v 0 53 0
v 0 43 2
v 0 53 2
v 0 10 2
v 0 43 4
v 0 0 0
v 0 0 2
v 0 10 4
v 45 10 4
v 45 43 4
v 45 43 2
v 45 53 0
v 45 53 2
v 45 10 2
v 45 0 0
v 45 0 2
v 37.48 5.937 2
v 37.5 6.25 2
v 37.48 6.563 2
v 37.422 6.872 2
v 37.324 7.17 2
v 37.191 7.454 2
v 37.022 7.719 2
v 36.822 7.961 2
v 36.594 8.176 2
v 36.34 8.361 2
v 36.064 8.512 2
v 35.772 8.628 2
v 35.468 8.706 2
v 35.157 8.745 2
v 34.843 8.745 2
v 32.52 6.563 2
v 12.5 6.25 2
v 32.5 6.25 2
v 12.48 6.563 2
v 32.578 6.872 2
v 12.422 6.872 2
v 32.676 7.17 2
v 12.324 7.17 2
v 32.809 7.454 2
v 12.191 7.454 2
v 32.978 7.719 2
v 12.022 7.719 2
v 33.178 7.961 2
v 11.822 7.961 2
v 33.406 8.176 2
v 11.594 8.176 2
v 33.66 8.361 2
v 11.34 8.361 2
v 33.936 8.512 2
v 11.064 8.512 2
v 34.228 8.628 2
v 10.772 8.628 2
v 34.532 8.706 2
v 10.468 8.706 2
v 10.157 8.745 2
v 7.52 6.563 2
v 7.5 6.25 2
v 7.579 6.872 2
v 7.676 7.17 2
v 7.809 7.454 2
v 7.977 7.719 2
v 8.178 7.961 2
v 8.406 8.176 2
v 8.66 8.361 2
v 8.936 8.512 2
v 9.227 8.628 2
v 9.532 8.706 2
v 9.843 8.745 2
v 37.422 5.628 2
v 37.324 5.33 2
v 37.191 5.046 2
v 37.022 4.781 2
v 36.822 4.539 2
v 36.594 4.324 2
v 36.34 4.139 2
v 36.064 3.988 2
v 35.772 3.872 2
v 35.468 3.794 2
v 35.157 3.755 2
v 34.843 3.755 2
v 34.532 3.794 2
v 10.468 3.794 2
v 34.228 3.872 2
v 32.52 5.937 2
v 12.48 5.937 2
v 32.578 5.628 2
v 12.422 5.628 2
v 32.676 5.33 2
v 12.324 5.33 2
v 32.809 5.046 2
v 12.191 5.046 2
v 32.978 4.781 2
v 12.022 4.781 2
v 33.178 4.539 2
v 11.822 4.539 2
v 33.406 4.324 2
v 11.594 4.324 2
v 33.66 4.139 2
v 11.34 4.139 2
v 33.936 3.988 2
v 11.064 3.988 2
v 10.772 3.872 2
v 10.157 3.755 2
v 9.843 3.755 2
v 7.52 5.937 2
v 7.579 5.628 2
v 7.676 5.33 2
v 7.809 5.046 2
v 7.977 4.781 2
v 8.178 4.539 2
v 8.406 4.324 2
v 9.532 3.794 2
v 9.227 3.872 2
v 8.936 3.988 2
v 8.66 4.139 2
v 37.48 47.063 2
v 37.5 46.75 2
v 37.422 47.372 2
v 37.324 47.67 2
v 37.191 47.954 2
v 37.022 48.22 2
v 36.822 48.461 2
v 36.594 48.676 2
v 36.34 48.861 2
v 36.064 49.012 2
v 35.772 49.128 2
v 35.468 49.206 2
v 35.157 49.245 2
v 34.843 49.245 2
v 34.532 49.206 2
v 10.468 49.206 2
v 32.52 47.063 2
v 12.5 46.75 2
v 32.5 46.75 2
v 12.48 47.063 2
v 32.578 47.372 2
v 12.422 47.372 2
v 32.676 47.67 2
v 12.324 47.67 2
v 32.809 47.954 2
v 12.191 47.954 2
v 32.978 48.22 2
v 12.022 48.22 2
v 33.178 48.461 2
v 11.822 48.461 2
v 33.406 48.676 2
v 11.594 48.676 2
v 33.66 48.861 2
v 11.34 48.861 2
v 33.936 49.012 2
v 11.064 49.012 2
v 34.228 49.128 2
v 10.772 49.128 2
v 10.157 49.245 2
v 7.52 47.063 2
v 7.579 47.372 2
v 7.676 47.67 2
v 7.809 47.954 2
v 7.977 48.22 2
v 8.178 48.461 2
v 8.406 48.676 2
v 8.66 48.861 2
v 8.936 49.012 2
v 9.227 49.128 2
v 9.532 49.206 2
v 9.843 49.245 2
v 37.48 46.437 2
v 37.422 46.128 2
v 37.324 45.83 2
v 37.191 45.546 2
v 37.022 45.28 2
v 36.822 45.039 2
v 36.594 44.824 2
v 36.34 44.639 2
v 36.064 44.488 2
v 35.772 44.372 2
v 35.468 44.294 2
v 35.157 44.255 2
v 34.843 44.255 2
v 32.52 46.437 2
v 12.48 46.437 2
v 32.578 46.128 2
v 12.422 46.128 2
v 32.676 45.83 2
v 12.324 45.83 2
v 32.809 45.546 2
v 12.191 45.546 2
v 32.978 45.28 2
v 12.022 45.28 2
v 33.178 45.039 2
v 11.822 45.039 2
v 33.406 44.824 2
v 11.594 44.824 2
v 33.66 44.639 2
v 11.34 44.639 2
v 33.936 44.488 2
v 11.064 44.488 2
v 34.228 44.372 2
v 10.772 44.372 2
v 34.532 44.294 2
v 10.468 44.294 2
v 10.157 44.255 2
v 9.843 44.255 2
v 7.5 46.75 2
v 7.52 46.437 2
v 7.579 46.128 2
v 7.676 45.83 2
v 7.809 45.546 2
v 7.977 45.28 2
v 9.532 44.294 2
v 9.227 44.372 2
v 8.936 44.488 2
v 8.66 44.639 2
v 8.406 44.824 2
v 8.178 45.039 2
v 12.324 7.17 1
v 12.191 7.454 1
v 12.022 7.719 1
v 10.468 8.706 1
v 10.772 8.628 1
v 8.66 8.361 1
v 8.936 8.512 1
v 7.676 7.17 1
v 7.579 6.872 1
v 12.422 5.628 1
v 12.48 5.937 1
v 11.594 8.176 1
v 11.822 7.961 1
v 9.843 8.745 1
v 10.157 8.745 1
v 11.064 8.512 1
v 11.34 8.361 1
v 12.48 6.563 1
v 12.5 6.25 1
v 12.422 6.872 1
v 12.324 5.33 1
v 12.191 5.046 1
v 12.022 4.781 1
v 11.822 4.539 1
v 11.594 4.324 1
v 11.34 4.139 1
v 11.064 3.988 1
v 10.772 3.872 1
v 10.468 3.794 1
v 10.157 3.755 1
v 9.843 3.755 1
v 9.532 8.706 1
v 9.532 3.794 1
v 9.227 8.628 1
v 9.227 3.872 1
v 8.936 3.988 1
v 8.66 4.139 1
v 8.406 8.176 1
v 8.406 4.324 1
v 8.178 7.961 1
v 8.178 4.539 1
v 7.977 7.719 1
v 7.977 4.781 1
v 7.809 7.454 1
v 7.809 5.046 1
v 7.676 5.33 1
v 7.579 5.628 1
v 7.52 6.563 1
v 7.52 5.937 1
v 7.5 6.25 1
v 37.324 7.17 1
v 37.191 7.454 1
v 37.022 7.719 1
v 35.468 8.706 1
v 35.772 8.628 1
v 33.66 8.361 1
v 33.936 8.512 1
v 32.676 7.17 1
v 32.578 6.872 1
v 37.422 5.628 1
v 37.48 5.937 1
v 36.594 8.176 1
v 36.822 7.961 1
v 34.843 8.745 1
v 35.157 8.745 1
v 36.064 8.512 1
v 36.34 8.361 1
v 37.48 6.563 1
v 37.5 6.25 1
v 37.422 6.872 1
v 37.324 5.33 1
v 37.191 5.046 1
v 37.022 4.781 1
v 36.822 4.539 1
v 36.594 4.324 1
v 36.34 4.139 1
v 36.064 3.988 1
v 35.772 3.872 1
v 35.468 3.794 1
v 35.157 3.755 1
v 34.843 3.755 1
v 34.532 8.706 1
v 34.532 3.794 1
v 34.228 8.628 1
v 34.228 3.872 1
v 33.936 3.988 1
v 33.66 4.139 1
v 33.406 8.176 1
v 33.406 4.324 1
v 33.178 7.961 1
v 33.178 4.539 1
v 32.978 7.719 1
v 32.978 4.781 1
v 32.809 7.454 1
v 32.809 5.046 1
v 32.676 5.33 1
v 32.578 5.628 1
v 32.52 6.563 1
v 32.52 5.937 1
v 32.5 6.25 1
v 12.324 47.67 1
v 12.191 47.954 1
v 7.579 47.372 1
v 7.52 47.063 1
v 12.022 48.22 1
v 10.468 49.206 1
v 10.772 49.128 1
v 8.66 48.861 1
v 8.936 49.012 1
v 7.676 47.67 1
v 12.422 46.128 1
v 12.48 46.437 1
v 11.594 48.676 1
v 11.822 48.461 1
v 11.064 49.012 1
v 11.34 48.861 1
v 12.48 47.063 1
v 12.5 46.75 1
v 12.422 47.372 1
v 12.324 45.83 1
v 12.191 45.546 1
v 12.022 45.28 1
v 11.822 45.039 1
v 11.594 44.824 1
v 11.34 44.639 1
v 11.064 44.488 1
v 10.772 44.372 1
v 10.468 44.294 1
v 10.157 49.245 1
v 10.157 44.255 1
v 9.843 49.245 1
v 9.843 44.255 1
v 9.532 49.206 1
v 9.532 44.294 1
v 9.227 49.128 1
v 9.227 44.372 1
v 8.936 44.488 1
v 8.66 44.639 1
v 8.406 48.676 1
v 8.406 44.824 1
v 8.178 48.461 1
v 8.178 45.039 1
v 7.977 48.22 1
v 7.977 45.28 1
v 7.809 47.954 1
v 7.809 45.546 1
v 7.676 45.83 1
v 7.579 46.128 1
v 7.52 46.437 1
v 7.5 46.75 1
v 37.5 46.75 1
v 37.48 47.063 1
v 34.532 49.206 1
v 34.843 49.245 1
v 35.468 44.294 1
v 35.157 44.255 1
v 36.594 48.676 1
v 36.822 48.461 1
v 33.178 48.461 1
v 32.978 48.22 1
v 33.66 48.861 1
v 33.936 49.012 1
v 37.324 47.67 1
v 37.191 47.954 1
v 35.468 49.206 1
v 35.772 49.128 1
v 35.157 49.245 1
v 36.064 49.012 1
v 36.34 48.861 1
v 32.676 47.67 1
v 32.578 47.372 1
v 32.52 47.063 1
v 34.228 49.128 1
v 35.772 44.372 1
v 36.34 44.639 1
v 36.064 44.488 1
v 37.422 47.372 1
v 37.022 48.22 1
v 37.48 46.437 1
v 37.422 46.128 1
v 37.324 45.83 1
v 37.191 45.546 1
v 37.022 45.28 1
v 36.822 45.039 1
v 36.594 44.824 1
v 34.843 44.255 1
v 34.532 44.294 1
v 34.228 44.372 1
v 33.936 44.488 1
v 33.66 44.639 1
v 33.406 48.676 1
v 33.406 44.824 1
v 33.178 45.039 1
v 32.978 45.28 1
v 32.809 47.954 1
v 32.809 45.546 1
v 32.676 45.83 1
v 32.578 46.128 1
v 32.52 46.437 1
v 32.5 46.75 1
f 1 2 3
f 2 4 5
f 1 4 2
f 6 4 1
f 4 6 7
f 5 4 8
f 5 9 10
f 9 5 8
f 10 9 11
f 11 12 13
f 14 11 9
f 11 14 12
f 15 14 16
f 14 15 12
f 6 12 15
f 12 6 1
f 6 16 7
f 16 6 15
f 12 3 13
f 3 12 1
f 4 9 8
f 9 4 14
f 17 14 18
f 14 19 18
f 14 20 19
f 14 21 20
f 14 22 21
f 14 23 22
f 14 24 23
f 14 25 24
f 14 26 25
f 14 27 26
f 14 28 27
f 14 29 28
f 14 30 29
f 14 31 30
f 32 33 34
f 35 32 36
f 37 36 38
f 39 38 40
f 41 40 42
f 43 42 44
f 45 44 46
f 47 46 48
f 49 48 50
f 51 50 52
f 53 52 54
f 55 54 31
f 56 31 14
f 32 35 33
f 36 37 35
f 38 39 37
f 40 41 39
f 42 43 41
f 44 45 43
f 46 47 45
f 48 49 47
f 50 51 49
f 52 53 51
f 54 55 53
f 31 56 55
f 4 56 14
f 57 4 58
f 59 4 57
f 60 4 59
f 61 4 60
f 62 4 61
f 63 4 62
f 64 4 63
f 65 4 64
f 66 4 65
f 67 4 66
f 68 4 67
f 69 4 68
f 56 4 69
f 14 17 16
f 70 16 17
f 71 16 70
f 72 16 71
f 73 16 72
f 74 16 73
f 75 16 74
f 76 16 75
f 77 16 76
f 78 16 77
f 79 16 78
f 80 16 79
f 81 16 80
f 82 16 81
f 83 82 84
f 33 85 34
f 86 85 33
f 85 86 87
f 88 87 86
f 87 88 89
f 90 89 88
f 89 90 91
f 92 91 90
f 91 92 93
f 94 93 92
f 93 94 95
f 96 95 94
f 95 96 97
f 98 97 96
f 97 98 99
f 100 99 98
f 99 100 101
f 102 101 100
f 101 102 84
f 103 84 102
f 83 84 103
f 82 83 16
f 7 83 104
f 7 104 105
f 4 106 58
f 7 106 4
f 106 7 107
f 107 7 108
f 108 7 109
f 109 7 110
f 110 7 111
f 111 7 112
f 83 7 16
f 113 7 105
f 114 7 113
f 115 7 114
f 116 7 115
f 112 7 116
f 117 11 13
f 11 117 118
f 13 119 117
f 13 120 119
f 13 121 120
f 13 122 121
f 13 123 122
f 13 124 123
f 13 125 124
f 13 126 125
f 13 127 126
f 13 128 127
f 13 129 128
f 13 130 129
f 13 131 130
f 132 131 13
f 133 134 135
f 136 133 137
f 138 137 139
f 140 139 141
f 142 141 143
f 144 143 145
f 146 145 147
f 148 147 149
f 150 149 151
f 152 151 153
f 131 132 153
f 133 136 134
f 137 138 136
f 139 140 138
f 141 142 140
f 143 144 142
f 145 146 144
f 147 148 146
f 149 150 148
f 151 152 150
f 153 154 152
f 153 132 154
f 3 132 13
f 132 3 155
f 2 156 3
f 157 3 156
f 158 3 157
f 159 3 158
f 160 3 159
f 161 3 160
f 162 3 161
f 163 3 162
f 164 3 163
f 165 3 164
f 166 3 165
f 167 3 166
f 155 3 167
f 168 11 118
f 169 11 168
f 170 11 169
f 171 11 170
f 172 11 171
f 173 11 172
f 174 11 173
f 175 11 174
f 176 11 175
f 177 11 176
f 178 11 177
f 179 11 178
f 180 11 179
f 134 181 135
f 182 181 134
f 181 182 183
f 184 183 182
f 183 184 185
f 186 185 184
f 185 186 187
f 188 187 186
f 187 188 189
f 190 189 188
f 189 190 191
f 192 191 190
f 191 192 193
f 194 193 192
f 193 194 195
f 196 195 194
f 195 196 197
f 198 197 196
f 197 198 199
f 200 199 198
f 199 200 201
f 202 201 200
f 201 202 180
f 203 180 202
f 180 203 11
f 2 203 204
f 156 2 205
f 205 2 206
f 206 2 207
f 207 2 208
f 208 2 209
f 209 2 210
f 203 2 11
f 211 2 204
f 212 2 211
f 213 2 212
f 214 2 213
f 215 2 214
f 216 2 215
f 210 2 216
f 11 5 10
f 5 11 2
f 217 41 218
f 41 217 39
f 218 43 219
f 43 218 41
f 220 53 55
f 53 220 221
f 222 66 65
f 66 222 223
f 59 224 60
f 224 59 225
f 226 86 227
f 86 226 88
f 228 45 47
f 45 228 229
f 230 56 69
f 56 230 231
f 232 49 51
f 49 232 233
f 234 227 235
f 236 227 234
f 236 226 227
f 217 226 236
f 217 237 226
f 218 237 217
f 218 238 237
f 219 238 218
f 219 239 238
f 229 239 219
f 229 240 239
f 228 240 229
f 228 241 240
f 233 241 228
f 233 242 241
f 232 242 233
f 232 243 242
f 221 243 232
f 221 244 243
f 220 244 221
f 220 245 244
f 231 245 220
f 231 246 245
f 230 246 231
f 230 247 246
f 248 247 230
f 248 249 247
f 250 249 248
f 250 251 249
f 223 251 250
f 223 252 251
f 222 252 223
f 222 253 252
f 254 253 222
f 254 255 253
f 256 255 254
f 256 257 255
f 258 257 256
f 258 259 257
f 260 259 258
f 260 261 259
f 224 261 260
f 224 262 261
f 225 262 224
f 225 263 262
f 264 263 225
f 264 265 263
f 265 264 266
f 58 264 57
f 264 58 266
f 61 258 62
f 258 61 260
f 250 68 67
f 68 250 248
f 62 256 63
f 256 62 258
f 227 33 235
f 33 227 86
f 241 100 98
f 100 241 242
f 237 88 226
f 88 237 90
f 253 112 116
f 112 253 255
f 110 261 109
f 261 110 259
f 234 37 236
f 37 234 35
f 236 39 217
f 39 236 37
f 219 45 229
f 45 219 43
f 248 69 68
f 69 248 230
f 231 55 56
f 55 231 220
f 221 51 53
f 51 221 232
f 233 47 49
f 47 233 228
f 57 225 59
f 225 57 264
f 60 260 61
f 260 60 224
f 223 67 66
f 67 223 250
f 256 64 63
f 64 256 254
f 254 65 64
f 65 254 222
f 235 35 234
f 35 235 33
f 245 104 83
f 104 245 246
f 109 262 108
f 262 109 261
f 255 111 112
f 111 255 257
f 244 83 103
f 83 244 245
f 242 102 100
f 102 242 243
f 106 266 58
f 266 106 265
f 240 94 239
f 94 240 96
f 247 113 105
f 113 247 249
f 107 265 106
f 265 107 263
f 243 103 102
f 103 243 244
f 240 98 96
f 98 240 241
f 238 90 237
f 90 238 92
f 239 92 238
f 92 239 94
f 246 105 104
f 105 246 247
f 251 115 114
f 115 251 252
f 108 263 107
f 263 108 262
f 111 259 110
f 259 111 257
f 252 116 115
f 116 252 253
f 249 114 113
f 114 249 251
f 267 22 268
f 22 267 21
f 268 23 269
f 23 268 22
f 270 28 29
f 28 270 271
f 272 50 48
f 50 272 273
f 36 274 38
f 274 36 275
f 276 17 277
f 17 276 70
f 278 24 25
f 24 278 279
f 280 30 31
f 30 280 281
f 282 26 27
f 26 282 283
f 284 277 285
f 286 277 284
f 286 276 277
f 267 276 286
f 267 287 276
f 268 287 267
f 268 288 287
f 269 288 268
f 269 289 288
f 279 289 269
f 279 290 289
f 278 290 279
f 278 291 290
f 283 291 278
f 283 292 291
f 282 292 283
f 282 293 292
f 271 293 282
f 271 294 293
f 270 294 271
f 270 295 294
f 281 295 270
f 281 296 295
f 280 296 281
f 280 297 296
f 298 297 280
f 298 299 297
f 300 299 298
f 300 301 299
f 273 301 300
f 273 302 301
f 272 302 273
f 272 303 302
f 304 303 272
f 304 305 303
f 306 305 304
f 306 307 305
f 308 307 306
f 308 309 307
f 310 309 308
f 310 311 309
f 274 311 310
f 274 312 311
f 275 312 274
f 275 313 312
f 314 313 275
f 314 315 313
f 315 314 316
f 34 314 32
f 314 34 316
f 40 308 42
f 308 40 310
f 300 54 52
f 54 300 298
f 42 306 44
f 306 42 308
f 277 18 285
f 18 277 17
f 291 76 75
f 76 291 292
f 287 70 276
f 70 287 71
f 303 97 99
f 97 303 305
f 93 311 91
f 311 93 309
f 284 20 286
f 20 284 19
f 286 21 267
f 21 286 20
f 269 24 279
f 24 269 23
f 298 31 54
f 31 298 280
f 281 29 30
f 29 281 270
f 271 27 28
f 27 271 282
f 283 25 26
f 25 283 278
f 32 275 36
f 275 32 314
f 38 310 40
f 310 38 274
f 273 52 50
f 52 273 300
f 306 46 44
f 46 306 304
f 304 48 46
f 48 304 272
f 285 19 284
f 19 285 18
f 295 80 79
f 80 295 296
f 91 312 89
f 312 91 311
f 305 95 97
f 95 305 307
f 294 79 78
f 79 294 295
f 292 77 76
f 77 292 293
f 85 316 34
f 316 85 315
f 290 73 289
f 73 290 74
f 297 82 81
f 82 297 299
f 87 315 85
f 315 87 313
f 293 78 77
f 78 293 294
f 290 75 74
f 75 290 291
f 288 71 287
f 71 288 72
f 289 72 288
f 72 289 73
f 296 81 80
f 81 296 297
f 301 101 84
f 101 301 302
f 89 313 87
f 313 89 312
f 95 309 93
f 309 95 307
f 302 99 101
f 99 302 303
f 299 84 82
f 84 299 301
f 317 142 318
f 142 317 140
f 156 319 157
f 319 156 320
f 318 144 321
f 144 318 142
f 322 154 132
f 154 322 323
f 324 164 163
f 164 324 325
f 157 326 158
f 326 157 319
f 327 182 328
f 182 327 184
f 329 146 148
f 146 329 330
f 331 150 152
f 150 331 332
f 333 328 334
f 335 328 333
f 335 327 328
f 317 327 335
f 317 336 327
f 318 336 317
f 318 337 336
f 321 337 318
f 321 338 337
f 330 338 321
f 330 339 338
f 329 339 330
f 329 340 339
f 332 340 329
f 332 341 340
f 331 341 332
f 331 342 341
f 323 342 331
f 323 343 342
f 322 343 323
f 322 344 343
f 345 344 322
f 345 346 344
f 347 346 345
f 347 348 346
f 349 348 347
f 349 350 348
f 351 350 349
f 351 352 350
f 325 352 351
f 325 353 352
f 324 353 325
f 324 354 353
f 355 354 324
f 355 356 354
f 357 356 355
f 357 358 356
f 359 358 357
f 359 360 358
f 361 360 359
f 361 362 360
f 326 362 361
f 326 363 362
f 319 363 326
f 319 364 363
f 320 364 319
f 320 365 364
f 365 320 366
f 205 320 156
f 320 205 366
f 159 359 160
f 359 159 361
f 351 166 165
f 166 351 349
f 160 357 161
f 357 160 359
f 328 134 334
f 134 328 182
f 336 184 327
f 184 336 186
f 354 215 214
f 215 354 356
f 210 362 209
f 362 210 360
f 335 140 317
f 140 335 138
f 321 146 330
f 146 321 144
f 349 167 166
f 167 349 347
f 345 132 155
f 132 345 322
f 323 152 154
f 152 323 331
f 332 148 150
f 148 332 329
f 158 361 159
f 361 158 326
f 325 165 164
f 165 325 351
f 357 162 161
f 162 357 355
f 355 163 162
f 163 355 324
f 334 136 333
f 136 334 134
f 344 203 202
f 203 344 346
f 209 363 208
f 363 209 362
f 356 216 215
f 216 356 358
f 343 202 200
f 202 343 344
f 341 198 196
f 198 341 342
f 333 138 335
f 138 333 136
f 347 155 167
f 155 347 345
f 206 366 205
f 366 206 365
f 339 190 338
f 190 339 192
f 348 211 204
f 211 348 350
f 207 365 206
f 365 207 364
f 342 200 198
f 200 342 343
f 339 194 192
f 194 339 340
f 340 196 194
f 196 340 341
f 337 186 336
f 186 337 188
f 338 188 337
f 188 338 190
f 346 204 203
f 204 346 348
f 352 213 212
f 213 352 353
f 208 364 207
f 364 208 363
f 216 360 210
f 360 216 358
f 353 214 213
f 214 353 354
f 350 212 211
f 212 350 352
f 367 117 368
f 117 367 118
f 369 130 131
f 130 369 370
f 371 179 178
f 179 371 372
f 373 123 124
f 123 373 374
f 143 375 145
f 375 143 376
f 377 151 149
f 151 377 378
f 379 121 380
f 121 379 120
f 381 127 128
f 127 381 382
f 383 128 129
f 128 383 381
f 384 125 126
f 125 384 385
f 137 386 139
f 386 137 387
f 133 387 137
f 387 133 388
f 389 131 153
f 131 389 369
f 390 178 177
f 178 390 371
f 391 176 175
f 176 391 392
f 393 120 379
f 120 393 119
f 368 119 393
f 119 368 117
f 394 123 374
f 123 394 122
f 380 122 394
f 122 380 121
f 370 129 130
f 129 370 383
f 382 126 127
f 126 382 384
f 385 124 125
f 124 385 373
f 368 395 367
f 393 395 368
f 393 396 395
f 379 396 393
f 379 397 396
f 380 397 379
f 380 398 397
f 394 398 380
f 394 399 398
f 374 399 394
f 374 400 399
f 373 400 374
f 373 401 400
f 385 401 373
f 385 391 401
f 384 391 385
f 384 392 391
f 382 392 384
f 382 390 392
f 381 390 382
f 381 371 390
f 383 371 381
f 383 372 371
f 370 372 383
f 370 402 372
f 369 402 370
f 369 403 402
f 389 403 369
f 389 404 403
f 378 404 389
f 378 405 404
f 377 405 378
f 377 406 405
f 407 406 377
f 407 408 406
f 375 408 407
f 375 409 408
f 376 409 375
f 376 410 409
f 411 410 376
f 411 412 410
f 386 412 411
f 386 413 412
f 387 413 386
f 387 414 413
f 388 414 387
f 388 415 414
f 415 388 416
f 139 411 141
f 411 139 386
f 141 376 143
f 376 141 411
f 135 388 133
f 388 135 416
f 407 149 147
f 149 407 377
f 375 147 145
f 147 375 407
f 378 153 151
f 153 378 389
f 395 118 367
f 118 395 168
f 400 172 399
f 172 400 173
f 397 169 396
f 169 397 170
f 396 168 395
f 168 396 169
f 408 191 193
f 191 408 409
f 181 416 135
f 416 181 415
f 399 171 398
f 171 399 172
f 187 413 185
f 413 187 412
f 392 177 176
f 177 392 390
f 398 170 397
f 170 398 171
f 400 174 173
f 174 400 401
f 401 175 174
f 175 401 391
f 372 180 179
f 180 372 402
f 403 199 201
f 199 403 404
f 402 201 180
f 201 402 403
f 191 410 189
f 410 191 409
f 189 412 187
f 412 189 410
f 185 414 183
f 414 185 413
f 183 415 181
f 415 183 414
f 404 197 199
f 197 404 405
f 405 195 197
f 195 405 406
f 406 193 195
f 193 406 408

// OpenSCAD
$fn=50;
union() {
    difference() {
        cube([45,53,4]);
        translate([0, 0, 2])
            cube([45, 10, 2]);
        translate([0, 53 - 10, 2])
            cube([45, 10, 2]);
        translate([10, 6.25, 1])
            cylinder(r=2.5,h=3);
        translate([(45 - 10), 6.25, 1])
            cylinder(r=2.5,h=3);
        translate([10, 53 - 6.25, 1])
            cylinder(r=2.5,h=3);
        translate([(45 - 10), 53 - 6.25, 1])
            cylinder(r=2.5,h=3);
    };
};
